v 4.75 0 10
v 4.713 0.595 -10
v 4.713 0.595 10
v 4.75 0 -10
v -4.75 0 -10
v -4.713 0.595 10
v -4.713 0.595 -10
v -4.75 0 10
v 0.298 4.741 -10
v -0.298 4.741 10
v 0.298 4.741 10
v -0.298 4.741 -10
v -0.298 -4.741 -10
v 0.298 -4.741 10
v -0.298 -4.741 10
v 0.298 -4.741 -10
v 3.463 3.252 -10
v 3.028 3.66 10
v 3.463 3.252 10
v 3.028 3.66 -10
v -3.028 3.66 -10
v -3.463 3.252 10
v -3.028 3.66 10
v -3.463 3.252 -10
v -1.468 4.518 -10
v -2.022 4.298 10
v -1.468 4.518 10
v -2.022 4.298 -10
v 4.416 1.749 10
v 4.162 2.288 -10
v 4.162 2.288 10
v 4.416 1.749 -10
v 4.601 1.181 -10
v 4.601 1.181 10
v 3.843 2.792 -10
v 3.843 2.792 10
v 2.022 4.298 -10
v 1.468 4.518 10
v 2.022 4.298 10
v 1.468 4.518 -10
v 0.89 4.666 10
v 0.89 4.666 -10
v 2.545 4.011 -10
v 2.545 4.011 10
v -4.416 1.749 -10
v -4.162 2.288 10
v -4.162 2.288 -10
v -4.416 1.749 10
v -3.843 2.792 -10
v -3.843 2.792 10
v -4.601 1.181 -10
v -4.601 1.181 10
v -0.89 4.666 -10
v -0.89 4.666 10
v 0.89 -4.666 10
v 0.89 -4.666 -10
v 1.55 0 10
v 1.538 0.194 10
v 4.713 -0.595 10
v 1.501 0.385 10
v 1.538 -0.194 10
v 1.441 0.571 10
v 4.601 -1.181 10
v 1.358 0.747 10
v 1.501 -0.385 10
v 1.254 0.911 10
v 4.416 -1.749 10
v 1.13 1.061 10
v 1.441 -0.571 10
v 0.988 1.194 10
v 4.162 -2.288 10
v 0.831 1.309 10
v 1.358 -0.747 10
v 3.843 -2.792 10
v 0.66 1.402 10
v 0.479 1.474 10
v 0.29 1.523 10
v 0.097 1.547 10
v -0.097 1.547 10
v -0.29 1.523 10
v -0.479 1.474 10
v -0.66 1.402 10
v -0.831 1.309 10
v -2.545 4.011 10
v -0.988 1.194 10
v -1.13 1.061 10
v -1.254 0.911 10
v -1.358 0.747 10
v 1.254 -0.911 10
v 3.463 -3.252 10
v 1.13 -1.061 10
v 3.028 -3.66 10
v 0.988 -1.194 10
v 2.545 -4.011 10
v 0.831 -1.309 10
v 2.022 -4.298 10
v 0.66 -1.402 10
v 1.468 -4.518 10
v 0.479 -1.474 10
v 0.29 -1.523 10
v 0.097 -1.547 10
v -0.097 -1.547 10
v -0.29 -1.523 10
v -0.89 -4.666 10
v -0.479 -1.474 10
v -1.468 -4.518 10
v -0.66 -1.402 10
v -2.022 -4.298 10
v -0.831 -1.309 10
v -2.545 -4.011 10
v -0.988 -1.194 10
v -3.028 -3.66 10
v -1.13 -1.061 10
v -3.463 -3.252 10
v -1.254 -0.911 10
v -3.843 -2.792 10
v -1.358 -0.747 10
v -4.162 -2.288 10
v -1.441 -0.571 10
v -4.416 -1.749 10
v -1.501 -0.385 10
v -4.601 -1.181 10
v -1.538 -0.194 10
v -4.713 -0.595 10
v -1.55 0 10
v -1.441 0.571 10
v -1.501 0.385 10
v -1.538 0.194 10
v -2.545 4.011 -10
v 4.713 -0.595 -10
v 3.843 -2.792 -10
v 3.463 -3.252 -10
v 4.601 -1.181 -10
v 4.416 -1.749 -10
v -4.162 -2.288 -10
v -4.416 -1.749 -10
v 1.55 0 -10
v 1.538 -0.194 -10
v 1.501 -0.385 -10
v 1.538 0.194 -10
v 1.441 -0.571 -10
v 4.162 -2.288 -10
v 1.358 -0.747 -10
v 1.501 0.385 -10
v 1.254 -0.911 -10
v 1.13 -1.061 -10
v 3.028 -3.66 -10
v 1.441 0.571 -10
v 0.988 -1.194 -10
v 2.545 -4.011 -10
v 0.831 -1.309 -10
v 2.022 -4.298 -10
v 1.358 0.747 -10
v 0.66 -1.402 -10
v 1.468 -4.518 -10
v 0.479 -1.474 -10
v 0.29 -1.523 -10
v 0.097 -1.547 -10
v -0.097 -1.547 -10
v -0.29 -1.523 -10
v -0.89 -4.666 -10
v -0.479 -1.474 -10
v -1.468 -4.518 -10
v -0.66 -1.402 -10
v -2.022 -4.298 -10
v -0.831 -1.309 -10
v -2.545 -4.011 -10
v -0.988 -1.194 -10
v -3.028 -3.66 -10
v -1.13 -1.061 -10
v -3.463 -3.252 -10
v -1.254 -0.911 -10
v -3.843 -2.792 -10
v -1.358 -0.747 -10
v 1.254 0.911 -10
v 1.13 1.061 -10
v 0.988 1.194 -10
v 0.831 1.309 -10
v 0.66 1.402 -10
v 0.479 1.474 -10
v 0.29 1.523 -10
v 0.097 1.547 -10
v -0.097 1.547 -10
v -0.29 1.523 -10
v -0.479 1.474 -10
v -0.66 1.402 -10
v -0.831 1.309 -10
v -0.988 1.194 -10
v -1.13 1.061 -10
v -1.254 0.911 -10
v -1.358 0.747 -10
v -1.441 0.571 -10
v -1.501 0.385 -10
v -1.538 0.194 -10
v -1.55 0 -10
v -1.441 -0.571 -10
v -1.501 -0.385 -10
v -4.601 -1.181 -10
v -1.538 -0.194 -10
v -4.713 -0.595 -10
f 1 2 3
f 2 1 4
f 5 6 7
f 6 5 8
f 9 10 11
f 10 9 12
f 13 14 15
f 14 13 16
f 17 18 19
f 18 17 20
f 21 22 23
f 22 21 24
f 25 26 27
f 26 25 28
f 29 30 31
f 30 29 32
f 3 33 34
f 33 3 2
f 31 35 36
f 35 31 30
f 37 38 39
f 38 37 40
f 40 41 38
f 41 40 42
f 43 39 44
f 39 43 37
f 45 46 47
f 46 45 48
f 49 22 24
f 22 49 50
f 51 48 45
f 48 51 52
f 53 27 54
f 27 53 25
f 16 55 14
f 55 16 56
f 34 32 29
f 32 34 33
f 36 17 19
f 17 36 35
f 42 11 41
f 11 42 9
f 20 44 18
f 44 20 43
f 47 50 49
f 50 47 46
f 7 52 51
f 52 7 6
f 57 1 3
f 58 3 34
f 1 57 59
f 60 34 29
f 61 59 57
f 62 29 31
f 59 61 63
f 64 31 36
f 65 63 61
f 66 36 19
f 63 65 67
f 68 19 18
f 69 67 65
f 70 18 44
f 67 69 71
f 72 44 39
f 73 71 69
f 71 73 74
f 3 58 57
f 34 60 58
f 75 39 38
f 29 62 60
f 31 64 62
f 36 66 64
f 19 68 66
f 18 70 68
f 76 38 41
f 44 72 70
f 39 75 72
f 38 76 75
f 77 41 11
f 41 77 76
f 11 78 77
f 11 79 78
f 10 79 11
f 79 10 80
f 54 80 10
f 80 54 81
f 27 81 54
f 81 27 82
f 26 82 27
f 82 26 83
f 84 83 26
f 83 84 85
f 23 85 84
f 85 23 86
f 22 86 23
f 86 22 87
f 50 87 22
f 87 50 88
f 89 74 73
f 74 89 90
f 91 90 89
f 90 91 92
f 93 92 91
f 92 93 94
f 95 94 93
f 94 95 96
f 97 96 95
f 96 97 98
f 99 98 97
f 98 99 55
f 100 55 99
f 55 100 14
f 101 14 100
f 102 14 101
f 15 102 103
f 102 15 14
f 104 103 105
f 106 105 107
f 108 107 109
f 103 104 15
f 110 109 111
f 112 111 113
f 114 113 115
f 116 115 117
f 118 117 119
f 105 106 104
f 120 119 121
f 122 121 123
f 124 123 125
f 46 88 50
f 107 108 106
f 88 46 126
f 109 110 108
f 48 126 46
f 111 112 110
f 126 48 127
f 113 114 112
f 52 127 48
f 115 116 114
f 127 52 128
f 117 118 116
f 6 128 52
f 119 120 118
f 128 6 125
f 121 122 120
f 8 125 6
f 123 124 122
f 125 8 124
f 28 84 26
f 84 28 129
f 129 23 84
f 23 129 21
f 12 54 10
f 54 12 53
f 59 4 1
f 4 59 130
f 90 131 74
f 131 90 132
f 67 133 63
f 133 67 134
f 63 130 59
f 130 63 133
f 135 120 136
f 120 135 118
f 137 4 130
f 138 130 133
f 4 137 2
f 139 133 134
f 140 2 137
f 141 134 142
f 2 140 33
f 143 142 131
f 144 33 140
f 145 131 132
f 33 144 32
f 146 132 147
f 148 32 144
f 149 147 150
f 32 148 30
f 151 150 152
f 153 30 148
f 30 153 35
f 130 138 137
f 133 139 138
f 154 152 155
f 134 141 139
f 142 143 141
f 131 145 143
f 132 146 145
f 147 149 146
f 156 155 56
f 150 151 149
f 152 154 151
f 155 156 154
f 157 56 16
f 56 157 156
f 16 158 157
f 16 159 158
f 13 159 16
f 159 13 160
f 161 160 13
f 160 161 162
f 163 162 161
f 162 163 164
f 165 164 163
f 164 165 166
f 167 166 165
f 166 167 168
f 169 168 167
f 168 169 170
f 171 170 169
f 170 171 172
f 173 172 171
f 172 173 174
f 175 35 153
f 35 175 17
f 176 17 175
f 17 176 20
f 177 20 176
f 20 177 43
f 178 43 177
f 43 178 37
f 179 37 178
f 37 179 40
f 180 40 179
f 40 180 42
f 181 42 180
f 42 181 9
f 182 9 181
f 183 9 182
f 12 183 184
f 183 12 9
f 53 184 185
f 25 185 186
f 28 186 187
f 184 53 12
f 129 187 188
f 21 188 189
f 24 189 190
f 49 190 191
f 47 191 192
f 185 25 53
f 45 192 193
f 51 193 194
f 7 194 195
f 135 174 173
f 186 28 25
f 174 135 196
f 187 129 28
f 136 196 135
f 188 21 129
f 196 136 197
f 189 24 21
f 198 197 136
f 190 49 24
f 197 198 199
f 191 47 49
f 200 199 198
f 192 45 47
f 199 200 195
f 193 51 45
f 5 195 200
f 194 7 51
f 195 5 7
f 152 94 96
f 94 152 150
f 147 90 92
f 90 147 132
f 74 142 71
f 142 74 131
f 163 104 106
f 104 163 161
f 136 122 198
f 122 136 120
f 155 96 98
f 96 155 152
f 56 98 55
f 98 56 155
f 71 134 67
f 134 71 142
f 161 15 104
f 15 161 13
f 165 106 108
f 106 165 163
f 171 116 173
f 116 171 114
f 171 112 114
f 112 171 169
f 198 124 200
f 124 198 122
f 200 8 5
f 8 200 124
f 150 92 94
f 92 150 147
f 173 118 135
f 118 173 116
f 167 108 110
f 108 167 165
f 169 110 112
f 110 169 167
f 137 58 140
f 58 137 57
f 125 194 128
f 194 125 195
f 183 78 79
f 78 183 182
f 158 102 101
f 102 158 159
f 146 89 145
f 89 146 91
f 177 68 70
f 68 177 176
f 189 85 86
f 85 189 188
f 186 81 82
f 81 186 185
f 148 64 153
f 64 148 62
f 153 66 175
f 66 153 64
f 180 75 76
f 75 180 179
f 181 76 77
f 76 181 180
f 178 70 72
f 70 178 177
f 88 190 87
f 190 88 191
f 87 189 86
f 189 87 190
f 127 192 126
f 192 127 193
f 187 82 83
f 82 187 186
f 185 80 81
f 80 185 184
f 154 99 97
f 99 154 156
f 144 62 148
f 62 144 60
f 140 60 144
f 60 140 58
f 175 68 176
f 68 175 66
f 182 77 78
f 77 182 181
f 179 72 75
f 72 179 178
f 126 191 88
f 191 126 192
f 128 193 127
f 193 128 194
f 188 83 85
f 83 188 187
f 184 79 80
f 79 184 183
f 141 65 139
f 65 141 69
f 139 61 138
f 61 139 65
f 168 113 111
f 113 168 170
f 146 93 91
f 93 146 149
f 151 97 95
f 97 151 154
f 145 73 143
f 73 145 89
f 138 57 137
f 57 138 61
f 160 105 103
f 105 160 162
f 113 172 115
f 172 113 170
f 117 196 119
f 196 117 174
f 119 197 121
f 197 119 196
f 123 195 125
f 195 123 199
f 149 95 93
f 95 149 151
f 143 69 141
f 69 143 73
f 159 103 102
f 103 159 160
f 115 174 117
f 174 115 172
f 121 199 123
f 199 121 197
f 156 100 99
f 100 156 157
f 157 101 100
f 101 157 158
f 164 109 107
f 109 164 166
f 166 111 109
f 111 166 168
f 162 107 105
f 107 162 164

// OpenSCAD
$fn = 50;


difference() {
	union() {
		translate(v = [0, 0, -10.0000000000]) {
			cylinder(h = 20, r = 4.7500000000);
		}
	}
	union() {
		translate(v = [0, 0, -100.0000000000]) {
			cylinder(h = 200, r = 1.5500000000);
		}
	}
}
